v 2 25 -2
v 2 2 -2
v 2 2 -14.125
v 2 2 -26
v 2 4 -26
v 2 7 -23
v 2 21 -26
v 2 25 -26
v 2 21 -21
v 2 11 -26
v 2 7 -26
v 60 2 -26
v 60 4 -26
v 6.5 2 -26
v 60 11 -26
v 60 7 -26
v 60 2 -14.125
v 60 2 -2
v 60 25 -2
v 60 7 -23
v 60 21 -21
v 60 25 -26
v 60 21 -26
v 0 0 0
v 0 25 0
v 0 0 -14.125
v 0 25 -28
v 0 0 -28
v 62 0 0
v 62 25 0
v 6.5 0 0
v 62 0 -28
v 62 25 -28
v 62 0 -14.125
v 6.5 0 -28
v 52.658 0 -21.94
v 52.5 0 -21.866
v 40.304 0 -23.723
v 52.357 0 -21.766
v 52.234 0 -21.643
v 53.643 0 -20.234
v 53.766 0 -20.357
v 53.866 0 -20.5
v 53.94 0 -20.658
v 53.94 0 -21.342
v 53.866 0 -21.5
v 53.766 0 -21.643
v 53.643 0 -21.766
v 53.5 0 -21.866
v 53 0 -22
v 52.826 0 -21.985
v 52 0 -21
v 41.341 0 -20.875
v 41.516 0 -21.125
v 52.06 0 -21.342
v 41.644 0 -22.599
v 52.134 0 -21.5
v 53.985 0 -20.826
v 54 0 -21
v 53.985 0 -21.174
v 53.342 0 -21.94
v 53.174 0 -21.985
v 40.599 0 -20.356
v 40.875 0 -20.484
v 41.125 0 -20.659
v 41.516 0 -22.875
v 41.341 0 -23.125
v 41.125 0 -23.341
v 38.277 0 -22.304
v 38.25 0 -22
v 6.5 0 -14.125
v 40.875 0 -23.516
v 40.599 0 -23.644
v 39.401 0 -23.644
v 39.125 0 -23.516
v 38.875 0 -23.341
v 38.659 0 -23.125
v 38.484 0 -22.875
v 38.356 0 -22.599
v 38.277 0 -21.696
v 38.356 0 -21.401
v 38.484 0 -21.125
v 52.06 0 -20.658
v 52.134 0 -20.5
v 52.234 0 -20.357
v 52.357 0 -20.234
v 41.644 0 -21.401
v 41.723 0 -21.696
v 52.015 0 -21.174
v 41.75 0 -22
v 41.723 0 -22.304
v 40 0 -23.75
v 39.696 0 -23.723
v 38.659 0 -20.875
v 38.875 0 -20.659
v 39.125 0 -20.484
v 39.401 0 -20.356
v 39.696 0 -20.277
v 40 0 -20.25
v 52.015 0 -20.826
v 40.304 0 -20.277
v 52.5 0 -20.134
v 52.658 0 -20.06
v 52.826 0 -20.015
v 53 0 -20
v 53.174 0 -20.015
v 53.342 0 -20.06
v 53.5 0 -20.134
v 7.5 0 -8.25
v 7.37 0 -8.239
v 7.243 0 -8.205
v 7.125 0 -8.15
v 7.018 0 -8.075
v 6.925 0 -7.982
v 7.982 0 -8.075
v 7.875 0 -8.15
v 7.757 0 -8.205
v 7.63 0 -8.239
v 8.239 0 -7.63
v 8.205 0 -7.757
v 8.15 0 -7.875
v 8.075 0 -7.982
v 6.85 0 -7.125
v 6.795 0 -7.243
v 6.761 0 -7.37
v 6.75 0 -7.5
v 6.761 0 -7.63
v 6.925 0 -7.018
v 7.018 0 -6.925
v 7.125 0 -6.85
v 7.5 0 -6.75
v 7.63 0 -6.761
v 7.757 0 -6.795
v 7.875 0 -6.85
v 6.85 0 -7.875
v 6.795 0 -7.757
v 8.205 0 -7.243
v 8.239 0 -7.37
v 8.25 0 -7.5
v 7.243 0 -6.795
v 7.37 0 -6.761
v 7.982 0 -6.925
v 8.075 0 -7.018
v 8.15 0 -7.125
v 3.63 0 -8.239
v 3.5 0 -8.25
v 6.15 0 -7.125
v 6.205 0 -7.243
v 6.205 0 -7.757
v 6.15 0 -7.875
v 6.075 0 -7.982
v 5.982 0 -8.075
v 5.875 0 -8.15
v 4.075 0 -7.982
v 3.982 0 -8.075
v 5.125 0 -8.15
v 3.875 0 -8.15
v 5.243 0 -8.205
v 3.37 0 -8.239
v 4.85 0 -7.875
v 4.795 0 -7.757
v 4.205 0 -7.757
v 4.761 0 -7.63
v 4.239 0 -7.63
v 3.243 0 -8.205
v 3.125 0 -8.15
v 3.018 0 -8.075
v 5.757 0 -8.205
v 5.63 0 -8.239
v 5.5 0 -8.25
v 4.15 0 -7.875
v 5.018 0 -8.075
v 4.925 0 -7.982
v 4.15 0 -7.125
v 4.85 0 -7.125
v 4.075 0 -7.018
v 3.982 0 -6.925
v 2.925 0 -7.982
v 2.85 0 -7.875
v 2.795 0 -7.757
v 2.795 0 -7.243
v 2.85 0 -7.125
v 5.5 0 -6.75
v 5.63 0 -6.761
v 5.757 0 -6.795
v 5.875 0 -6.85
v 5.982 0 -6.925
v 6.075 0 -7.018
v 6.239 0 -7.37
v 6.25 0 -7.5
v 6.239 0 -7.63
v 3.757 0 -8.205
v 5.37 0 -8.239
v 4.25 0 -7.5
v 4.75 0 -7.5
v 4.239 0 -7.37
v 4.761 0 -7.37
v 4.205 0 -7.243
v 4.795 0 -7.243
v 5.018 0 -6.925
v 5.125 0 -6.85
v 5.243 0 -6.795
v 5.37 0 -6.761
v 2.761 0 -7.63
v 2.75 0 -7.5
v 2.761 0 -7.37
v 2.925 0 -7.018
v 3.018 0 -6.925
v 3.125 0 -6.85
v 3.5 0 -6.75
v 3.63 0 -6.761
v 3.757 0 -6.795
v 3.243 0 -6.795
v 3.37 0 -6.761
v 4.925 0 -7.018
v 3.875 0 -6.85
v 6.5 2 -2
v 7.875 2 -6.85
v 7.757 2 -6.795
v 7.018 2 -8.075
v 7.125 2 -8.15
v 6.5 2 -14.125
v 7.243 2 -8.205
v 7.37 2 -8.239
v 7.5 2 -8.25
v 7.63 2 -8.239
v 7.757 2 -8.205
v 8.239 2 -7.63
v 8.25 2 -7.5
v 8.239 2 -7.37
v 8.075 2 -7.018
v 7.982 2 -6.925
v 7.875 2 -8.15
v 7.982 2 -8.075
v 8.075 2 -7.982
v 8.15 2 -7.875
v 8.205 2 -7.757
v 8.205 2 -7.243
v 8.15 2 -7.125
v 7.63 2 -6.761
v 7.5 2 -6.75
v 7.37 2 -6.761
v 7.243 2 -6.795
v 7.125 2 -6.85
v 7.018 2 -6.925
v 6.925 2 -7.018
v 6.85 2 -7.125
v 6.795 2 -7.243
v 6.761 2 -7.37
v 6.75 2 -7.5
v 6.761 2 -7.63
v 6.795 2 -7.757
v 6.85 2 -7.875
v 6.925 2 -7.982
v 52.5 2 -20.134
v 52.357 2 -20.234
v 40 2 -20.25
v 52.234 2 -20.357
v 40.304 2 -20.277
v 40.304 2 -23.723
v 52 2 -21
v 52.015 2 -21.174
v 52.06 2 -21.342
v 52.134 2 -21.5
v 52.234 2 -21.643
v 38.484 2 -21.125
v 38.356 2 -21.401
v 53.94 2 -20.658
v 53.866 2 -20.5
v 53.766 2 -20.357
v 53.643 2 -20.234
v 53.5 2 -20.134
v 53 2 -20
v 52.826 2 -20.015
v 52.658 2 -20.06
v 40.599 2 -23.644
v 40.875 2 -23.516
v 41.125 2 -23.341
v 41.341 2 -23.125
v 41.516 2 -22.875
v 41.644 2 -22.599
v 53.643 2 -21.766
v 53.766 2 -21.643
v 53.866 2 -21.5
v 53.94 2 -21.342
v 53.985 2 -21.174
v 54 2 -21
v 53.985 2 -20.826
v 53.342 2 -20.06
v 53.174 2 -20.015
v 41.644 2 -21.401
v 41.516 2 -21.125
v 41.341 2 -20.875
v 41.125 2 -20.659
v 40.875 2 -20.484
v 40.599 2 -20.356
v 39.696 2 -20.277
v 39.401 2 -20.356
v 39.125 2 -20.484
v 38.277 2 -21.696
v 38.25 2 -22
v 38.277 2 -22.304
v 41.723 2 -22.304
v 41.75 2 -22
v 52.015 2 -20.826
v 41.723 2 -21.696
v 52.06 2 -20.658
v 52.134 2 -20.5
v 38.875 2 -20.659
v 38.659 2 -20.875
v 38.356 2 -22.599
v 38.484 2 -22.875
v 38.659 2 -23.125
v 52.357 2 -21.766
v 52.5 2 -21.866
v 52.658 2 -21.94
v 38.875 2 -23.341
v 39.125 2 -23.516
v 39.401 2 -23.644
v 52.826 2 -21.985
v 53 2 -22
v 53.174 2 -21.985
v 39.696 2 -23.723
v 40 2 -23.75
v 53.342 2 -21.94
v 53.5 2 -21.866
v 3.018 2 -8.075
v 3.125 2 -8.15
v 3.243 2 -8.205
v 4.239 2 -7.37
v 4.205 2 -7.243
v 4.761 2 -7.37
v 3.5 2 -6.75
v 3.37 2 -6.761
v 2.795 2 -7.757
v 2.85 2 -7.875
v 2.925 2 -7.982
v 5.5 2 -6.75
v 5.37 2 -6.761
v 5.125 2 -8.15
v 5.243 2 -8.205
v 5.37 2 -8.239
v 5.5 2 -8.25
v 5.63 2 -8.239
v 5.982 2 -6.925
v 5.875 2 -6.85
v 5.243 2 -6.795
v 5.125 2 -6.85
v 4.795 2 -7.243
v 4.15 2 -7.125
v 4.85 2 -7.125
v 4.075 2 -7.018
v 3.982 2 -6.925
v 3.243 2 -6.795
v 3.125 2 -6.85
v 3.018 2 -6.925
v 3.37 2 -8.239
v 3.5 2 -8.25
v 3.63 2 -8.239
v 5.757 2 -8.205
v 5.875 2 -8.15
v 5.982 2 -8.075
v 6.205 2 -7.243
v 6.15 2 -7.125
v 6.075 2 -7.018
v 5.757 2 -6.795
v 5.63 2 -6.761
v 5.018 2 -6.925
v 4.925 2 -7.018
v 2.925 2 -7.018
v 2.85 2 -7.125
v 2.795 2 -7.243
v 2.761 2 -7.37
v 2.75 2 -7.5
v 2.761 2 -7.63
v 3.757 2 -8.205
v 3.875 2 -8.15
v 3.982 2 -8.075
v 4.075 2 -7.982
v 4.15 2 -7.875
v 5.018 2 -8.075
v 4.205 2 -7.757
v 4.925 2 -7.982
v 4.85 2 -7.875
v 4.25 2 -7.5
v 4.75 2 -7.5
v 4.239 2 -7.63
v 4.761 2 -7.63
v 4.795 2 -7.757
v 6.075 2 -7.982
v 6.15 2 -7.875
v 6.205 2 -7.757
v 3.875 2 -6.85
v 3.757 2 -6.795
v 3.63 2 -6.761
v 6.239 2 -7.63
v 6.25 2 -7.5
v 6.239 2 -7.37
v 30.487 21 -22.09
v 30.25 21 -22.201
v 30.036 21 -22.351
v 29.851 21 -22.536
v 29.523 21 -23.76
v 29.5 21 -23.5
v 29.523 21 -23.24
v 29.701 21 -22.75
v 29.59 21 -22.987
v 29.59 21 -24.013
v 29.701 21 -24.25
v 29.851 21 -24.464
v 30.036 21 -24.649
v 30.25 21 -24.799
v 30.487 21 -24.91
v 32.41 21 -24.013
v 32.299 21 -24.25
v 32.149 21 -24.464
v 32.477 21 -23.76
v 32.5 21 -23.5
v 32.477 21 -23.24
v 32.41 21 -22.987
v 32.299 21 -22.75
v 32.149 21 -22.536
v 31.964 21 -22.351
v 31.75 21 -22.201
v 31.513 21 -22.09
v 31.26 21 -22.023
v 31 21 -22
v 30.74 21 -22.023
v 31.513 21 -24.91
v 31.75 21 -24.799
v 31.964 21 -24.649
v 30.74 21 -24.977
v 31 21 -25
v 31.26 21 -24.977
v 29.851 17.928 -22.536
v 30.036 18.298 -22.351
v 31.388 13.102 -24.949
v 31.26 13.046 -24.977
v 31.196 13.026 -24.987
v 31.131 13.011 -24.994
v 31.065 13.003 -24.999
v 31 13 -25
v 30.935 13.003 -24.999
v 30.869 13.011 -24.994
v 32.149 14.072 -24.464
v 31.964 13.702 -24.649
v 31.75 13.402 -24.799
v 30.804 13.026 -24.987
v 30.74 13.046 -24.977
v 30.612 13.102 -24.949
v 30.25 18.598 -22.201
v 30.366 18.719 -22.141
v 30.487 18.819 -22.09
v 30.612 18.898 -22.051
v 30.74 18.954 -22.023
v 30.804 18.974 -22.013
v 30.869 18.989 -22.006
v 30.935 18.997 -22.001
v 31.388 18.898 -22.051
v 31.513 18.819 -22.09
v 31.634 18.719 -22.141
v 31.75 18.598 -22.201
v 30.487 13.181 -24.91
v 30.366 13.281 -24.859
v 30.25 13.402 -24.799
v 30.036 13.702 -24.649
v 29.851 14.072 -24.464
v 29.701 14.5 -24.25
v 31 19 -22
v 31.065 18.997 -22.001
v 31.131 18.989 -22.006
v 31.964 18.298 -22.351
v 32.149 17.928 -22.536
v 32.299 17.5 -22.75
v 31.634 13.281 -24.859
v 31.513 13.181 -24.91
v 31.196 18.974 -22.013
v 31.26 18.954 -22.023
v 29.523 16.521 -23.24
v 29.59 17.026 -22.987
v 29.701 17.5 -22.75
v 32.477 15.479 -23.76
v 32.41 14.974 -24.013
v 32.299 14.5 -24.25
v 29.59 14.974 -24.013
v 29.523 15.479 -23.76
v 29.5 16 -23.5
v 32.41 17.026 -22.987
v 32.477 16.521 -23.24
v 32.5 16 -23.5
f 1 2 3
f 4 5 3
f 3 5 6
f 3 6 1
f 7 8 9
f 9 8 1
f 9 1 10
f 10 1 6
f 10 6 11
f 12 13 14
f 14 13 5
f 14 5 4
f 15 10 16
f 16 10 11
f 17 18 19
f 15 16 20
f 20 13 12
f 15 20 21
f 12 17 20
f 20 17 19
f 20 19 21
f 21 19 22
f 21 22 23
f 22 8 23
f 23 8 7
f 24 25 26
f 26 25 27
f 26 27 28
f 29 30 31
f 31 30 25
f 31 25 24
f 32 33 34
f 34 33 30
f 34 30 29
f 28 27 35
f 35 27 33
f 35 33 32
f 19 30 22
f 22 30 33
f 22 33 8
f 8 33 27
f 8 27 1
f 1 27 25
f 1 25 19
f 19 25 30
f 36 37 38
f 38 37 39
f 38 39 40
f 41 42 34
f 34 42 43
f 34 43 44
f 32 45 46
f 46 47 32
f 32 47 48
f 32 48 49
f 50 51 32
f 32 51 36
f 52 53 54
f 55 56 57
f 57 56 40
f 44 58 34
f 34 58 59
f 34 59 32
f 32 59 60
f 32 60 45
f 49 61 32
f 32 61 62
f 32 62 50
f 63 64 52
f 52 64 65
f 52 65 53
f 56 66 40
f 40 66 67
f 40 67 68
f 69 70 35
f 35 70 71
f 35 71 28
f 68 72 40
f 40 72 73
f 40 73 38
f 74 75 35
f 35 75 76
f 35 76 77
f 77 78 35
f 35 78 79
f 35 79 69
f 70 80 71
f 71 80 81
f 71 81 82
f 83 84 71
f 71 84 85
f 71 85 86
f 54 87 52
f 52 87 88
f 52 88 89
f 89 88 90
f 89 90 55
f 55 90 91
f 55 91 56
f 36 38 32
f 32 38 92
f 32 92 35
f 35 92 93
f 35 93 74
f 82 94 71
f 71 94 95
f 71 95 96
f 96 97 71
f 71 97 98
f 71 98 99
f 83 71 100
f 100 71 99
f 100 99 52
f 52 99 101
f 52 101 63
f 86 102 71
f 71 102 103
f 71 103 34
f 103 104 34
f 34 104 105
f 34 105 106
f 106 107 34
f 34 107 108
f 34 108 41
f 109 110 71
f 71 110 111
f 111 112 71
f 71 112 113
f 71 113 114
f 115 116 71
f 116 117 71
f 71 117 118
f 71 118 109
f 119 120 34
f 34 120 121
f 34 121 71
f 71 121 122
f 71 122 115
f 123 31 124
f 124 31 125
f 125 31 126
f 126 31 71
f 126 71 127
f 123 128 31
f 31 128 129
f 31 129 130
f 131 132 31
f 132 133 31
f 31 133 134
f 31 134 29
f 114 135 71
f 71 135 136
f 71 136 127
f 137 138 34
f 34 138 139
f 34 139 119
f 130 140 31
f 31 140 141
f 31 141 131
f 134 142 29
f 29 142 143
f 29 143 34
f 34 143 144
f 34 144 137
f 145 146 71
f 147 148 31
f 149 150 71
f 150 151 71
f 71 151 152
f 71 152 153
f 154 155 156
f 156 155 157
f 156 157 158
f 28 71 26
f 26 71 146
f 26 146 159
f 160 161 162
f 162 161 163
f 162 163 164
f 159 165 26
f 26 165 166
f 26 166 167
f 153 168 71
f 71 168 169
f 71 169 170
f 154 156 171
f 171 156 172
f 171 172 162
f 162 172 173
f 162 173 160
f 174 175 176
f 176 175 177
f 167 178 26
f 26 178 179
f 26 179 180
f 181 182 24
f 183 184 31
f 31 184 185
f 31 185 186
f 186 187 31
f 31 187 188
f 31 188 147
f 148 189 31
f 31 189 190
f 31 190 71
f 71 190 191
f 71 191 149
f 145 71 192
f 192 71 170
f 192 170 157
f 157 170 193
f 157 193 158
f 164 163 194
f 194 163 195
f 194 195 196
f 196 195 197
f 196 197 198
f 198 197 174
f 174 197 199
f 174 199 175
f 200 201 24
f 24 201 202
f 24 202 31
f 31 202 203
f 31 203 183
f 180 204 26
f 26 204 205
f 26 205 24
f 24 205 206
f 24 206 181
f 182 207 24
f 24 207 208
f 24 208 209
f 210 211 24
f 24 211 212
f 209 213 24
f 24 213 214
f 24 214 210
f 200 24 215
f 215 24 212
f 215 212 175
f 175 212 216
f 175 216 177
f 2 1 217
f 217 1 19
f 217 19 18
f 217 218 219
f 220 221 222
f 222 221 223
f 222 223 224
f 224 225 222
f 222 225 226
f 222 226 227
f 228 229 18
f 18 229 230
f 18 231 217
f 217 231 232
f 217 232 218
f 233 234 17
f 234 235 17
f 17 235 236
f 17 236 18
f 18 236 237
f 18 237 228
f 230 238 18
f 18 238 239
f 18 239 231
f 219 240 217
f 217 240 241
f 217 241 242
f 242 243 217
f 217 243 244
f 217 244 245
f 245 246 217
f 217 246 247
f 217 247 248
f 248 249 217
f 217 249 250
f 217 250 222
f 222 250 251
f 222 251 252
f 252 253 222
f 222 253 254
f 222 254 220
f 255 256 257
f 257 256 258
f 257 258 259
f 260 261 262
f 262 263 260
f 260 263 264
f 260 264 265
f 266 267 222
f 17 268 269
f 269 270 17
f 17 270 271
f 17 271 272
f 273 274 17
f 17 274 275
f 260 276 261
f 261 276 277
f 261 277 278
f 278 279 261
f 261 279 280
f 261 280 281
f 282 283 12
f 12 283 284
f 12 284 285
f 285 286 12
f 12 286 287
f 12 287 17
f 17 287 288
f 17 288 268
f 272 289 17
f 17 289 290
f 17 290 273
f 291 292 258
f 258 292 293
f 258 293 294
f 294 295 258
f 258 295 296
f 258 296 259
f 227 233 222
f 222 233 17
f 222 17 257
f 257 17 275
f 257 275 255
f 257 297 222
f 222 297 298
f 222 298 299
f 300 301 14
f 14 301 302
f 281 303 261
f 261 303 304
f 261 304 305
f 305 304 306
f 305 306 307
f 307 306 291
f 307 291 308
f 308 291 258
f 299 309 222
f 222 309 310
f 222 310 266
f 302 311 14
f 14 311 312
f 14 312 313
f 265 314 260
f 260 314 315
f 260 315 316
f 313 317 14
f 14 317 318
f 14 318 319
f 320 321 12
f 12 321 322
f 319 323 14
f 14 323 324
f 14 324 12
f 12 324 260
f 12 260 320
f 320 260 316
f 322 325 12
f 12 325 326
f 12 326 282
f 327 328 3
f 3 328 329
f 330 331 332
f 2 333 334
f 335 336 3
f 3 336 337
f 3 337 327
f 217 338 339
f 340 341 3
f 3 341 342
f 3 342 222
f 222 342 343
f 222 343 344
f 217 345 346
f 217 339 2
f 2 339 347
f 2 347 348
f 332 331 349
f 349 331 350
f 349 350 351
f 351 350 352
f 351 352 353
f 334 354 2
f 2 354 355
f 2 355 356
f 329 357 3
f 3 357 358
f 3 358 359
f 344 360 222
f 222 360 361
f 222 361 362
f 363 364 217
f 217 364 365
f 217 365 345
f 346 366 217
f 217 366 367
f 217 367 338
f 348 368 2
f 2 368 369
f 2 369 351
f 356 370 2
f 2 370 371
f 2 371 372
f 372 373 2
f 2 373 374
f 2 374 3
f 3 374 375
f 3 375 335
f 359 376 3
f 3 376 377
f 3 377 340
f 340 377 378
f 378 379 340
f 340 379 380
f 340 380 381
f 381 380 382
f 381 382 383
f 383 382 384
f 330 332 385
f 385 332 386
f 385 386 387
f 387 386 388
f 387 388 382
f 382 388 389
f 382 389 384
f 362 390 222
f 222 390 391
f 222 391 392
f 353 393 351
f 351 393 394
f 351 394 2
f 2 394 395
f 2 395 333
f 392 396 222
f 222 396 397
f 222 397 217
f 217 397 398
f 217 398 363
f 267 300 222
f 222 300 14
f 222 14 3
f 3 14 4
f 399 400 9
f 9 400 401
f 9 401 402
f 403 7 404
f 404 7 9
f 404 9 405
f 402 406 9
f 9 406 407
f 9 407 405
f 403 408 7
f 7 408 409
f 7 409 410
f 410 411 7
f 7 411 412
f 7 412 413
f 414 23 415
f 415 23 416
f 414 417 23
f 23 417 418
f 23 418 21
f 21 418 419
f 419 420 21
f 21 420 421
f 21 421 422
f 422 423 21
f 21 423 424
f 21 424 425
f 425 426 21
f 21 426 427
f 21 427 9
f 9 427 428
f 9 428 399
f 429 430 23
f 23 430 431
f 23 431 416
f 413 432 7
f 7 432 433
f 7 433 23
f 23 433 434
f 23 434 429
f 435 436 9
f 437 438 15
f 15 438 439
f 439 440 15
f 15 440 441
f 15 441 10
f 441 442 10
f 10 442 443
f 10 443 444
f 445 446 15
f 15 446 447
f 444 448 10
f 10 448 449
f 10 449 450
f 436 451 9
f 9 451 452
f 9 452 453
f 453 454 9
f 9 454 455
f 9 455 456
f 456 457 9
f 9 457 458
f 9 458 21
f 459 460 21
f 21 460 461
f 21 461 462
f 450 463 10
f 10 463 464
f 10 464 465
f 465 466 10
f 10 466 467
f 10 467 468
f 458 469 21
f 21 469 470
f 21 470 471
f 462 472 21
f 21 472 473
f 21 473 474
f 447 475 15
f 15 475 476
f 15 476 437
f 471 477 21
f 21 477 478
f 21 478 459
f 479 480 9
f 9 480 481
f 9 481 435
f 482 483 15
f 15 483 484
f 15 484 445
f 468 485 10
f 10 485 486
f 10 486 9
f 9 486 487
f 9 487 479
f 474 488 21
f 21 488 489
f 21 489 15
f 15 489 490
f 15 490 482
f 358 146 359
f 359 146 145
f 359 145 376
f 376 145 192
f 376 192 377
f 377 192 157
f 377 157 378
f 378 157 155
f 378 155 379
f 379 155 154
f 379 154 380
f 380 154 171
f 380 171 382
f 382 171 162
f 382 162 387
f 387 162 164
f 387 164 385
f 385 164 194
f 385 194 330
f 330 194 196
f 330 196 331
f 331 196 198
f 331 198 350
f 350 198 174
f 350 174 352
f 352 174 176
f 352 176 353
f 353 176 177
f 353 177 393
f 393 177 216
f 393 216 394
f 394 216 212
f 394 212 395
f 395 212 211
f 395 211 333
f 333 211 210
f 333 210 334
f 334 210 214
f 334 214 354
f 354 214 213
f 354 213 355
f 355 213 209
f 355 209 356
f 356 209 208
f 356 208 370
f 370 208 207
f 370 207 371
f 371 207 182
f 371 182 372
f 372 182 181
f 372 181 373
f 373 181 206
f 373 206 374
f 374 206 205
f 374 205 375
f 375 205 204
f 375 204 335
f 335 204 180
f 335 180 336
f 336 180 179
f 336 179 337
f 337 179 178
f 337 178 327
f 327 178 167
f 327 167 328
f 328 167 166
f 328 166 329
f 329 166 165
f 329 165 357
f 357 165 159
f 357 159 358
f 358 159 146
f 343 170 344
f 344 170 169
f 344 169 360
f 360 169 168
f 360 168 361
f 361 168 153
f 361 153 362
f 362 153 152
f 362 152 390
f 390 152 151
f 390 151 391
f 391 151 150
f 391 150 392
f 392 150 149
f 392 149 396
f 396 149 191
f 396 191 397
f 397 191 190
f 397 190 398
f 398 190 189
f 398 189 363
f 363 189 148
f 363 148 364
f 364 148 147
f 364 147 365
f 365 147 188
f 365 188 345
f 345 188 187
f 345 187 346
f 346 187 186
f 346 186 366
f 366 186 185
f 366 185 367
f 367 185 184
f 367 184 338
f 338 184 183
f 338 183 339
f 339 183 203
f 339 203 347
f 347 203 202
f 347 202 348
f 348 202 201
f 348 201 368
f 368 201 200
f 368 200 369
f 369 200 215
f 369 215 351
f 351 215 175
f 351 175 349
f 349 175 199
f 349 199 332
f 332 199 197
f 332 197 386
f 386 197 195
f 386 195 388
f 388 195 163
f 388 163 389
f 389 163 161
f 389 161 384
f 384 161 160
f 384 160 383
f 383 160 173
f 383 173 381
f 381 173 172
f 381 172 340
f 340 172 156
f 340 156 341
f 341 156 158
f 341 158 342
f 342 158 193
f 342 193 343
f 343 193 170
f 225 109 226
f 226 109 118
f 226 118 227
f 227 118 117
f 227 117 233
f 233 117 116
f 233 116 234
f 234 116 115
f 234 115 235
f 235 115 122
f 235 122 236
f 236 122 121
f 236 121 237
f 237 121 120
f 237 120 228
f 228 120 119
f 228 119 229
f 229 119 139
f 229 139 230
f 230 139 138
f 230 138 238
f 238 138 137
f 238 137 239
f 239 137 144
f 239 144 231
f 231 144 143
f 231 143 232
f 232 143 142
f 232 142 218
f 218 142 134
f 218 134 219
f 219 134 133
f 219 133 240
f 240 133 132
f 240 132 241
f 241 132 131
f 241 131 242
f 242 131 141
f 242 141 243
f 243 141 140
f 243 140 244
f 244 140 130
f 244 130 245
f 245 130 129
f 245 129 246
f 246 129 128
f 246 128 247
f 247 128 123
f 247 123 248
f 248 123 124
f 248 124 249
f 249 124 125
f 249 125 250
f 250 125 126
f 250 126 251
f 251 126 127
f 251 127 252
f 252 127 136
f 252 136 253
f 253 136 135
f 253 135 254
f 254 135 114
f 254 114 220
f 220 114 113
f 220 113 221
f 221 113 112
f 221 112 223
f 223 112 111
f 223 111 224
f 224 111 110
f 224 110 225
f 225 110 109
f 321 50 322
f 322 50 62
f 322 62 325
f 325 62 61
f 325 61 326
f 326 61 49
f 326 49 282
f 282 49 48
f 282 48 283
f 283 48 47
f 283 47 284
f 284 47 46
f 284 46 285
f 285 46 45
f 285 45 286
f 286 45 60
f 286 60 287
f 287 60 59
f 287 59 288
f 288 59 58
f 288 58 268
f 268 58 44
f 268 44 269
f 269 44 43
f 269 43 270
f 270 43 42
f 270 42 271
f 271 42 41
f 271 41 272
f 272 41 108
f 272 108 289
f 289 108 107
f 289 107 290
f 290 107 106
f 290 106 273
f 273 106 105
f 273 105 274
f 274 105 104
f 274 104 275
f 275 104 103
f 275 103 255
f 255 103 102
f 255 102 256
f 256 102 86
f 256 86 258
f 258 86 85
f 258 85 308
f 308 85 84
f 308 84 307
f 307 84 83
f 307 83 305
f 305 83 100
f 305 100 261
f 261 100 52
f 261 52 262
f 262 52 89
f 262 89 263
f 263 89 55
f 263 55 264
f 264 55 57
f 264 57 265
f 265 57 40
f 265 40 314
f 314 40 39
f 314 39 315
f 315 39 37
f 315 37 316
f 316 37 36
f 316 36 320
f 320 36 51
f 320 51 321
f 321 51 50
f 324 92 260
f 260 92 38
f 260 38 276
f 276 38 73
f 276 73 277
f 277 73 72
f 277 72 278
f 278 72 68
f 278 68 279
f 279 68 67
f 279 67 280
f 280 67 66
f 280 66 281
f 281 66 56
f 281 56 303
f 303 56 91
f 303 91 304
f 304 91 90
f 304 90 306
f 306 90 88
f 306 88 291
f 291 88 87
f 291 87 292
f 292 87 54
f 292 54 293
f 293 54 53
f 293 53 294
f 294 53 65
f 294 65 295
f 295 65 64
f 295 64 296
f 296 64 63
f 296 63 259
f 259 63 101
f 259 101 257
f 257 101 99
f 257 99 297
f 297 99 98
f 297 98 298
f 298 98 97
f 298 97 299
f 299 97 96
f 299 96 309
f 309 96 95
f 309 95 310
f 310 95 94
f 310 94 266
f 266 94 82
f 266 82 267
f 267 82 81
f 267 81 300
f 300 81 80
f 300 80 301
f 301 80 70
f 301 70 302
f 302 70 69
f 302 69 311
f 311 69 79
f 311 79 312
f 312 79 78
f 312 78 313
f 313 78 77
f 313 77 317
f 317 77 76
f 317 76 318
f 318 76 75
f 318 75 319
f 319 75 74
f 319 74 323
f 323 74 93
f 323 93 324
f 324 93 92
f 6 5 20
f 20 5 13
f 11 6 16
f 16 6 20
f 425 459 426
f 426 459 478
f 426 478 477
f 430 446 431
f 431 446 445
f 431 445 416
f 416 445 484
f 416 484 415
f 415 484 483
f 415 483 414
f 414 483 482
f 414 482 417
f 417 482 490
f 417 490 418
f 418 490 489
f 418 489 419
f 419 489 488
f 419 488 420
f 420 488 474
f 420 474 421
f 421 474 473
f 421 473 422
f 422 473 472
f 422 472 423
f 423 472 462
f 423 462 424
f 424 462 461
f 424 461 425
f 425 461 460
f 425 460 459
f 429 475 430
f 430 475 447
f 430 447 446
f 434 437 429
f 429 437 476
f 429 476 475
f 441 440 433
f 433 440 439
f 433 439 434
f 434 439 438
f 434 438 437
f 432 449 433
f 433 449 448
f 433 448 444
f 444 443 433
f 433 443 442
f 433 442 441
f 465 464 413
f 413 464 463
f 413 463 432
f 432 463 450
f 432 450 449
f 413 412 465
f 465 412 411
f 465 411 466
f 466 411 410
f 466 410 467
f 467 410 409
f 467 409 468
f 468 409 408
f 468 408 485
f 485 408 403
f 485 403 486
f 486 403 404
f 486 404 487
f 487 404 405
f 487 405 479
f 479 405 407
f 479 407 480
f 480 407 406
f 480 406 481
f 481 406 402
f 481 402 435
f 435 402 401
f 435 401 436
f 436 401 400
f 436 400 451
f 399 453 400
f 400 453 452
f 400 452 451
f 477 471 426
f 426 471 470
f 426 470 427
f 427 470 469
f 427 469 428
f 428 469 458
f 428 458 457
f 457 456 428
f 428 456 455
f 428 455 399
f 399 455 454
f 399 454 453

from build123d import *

# Parameters (mm, degrees)
SKETCH1_W                      = 62
SKETCH1_H                      = 28
BOSS_EXTRUDE1_DEPTH            = 25
SKETCH2_W                      = 58
SKETCH2_H                      = 24
CUT_EXTRUDE1_DEPTH             = 23
BOSS_EXTRUDE3_DEPTH            = 58
F_1_5_1_5_DIAMETER_HOLE1_D     = 1.5
F_2_0_2_DIAMETER_HOLE1_D       = 2
F_2_0_2_DIAMETER_HOLE1_DEPTH   = 2
F_3_5_3_5_DIAMETER_HOLE1_D     = 3.5
F_3_5_3_5_DIAMETER_HOLE1_DEPTH = 2
BOSS_EXTRUDE4_REACH            = 72.774
F_3_0_3_DIAMETER_HOLE1_REACH   = 73.197
F_3_0_3_DIAMETER_HOLE1_BORE_R  = 1.5


with BuildPart() as part:
    # Sketch1 → Boss-Extrude1 (new body)
    with BuildSketch(Plane(origin=(0, 0, 0), x_dir=(1, 0, 0), z_dir=(0, 1, 0))):
        with Locations((31, 14)):
            Rectangle(SKETCH1_W, SKETCH1_H)
    extrude(amount=BOSS_EXTRUDE1_DEPTH)

    # Sketch2 → Cut-Extrude1 (cut)
    with BuildSketch(Plane(origin=(0, 25, 0), x_dir=(1, 0, 0), z_dir=(0, 1, 0))):
        with Locations((31, 14)):
            Rectangle(SKETCH2_W, SKETCH2_H)
    extrude(amount=-CUT_EXTRUDE1_DEPTH, mode=Mode.SUBTRACT)

    # Sketch3 → Boss-Extrude3 (add)
    with BuildSketch(Plane(origin=(2, 0, 0), x_dir=(0, 0, -1), z_dir=(1, 0, 0))):
        Polygon((26, 11), (21, 21), (26, 21), align=None)
    extrude(amount=BOSS_EXTRUDE3_DEPTH)

    # Ø1.5 (1.5) Diameter Hole1 (through all)
    with Locations(Plane(origin=(0, 0, 0), x_dir=(-1, 0, 0), z_dir=(0, -1, 0))):
        with Locations((-7.5, 7.5), (-5.5, 7.5), (-3.5, 7.5)):
            Hole(F_1_5_1_5_DIAMETER_HOLE1_D / 2)

    # Ø2.0 (2) Diameter Hole1
    with Locations(Plane(origin=(0, 0, 0), x_dir=(-1, 0, 0), z_dir=(0, -1, 0))):
        with Locations((-53, 21)):
            Hole(F_2_0_2_DIAMETER_HOLE1_D / 2, depth=F_2_0_2_DIAMETER_HOLE1_DEPTH)

    # Ø3.5 (3.5) Diameter Hole1
    with Locations(Plane(origin=(0, 0, 0), x_dir=(-1, 0, 0), z_dir=(0, -1, 0))):
        with Locations((-40, 22)):
            Hole(F_3_5_3_5_DIAMETER_HOLE1_D / 2, depth=F_3_5_3_5_DIAMETER_HOLE1_DEPTH)

    # Sketch10 → Boss-Extrude4 (add, up to next)
    with BuildSketch(Plane(origin=(2, 0, 0), x_dir=(0, 0, -1), z_dir=(1, 0, 0)), mode=Mode.PRIVATE) as boss_extrude4_sk1:
        Polygon((26, 4), (23, 7), (26, 7), align=None)
    boss_extrude4_tool1 = extrude(boss_extrude4_sk1.sketch, amount=BOSS_EXTRUDE4_REACH, mode=Mode.PRIVATE) - part.part
    add(boss_extrude4_tool1.solids().sort_by_distance((2, 6, -25))[0])

    # Ø3.0 (3) Diameter Hole1 bore → Ø3.0 (3) Diameter Hole1 (cut, up to next)
    with BuildSketch(Plane(origin=(0, 21, 0), x_dir=(1, 0, 0), z_dir=(0, 1, 0)), mode=Mode.PRIVATE) as f_3_0_3_diameter_hole1_sk1:
        with Locations((31, 23.5)):
            Circle(F_3_0_3_DIAMETER_HOLE1_BORE_R)
    f_3_0_3_diameter_hole1_tool1 = extrude(f_3_0_3_diameter_hole1_sk1.sketch, amount=-F_3_0_3_DIAMETER_HOLE1_REACH, mode=Mode.PRIVATE) & part.part
    add(f_3_0_3_diameter_hole1_tool1.solids().sort_by_distance((31, 21, -23.5))[0], mode=Mode.SUBTRACT)


solid = part.part
